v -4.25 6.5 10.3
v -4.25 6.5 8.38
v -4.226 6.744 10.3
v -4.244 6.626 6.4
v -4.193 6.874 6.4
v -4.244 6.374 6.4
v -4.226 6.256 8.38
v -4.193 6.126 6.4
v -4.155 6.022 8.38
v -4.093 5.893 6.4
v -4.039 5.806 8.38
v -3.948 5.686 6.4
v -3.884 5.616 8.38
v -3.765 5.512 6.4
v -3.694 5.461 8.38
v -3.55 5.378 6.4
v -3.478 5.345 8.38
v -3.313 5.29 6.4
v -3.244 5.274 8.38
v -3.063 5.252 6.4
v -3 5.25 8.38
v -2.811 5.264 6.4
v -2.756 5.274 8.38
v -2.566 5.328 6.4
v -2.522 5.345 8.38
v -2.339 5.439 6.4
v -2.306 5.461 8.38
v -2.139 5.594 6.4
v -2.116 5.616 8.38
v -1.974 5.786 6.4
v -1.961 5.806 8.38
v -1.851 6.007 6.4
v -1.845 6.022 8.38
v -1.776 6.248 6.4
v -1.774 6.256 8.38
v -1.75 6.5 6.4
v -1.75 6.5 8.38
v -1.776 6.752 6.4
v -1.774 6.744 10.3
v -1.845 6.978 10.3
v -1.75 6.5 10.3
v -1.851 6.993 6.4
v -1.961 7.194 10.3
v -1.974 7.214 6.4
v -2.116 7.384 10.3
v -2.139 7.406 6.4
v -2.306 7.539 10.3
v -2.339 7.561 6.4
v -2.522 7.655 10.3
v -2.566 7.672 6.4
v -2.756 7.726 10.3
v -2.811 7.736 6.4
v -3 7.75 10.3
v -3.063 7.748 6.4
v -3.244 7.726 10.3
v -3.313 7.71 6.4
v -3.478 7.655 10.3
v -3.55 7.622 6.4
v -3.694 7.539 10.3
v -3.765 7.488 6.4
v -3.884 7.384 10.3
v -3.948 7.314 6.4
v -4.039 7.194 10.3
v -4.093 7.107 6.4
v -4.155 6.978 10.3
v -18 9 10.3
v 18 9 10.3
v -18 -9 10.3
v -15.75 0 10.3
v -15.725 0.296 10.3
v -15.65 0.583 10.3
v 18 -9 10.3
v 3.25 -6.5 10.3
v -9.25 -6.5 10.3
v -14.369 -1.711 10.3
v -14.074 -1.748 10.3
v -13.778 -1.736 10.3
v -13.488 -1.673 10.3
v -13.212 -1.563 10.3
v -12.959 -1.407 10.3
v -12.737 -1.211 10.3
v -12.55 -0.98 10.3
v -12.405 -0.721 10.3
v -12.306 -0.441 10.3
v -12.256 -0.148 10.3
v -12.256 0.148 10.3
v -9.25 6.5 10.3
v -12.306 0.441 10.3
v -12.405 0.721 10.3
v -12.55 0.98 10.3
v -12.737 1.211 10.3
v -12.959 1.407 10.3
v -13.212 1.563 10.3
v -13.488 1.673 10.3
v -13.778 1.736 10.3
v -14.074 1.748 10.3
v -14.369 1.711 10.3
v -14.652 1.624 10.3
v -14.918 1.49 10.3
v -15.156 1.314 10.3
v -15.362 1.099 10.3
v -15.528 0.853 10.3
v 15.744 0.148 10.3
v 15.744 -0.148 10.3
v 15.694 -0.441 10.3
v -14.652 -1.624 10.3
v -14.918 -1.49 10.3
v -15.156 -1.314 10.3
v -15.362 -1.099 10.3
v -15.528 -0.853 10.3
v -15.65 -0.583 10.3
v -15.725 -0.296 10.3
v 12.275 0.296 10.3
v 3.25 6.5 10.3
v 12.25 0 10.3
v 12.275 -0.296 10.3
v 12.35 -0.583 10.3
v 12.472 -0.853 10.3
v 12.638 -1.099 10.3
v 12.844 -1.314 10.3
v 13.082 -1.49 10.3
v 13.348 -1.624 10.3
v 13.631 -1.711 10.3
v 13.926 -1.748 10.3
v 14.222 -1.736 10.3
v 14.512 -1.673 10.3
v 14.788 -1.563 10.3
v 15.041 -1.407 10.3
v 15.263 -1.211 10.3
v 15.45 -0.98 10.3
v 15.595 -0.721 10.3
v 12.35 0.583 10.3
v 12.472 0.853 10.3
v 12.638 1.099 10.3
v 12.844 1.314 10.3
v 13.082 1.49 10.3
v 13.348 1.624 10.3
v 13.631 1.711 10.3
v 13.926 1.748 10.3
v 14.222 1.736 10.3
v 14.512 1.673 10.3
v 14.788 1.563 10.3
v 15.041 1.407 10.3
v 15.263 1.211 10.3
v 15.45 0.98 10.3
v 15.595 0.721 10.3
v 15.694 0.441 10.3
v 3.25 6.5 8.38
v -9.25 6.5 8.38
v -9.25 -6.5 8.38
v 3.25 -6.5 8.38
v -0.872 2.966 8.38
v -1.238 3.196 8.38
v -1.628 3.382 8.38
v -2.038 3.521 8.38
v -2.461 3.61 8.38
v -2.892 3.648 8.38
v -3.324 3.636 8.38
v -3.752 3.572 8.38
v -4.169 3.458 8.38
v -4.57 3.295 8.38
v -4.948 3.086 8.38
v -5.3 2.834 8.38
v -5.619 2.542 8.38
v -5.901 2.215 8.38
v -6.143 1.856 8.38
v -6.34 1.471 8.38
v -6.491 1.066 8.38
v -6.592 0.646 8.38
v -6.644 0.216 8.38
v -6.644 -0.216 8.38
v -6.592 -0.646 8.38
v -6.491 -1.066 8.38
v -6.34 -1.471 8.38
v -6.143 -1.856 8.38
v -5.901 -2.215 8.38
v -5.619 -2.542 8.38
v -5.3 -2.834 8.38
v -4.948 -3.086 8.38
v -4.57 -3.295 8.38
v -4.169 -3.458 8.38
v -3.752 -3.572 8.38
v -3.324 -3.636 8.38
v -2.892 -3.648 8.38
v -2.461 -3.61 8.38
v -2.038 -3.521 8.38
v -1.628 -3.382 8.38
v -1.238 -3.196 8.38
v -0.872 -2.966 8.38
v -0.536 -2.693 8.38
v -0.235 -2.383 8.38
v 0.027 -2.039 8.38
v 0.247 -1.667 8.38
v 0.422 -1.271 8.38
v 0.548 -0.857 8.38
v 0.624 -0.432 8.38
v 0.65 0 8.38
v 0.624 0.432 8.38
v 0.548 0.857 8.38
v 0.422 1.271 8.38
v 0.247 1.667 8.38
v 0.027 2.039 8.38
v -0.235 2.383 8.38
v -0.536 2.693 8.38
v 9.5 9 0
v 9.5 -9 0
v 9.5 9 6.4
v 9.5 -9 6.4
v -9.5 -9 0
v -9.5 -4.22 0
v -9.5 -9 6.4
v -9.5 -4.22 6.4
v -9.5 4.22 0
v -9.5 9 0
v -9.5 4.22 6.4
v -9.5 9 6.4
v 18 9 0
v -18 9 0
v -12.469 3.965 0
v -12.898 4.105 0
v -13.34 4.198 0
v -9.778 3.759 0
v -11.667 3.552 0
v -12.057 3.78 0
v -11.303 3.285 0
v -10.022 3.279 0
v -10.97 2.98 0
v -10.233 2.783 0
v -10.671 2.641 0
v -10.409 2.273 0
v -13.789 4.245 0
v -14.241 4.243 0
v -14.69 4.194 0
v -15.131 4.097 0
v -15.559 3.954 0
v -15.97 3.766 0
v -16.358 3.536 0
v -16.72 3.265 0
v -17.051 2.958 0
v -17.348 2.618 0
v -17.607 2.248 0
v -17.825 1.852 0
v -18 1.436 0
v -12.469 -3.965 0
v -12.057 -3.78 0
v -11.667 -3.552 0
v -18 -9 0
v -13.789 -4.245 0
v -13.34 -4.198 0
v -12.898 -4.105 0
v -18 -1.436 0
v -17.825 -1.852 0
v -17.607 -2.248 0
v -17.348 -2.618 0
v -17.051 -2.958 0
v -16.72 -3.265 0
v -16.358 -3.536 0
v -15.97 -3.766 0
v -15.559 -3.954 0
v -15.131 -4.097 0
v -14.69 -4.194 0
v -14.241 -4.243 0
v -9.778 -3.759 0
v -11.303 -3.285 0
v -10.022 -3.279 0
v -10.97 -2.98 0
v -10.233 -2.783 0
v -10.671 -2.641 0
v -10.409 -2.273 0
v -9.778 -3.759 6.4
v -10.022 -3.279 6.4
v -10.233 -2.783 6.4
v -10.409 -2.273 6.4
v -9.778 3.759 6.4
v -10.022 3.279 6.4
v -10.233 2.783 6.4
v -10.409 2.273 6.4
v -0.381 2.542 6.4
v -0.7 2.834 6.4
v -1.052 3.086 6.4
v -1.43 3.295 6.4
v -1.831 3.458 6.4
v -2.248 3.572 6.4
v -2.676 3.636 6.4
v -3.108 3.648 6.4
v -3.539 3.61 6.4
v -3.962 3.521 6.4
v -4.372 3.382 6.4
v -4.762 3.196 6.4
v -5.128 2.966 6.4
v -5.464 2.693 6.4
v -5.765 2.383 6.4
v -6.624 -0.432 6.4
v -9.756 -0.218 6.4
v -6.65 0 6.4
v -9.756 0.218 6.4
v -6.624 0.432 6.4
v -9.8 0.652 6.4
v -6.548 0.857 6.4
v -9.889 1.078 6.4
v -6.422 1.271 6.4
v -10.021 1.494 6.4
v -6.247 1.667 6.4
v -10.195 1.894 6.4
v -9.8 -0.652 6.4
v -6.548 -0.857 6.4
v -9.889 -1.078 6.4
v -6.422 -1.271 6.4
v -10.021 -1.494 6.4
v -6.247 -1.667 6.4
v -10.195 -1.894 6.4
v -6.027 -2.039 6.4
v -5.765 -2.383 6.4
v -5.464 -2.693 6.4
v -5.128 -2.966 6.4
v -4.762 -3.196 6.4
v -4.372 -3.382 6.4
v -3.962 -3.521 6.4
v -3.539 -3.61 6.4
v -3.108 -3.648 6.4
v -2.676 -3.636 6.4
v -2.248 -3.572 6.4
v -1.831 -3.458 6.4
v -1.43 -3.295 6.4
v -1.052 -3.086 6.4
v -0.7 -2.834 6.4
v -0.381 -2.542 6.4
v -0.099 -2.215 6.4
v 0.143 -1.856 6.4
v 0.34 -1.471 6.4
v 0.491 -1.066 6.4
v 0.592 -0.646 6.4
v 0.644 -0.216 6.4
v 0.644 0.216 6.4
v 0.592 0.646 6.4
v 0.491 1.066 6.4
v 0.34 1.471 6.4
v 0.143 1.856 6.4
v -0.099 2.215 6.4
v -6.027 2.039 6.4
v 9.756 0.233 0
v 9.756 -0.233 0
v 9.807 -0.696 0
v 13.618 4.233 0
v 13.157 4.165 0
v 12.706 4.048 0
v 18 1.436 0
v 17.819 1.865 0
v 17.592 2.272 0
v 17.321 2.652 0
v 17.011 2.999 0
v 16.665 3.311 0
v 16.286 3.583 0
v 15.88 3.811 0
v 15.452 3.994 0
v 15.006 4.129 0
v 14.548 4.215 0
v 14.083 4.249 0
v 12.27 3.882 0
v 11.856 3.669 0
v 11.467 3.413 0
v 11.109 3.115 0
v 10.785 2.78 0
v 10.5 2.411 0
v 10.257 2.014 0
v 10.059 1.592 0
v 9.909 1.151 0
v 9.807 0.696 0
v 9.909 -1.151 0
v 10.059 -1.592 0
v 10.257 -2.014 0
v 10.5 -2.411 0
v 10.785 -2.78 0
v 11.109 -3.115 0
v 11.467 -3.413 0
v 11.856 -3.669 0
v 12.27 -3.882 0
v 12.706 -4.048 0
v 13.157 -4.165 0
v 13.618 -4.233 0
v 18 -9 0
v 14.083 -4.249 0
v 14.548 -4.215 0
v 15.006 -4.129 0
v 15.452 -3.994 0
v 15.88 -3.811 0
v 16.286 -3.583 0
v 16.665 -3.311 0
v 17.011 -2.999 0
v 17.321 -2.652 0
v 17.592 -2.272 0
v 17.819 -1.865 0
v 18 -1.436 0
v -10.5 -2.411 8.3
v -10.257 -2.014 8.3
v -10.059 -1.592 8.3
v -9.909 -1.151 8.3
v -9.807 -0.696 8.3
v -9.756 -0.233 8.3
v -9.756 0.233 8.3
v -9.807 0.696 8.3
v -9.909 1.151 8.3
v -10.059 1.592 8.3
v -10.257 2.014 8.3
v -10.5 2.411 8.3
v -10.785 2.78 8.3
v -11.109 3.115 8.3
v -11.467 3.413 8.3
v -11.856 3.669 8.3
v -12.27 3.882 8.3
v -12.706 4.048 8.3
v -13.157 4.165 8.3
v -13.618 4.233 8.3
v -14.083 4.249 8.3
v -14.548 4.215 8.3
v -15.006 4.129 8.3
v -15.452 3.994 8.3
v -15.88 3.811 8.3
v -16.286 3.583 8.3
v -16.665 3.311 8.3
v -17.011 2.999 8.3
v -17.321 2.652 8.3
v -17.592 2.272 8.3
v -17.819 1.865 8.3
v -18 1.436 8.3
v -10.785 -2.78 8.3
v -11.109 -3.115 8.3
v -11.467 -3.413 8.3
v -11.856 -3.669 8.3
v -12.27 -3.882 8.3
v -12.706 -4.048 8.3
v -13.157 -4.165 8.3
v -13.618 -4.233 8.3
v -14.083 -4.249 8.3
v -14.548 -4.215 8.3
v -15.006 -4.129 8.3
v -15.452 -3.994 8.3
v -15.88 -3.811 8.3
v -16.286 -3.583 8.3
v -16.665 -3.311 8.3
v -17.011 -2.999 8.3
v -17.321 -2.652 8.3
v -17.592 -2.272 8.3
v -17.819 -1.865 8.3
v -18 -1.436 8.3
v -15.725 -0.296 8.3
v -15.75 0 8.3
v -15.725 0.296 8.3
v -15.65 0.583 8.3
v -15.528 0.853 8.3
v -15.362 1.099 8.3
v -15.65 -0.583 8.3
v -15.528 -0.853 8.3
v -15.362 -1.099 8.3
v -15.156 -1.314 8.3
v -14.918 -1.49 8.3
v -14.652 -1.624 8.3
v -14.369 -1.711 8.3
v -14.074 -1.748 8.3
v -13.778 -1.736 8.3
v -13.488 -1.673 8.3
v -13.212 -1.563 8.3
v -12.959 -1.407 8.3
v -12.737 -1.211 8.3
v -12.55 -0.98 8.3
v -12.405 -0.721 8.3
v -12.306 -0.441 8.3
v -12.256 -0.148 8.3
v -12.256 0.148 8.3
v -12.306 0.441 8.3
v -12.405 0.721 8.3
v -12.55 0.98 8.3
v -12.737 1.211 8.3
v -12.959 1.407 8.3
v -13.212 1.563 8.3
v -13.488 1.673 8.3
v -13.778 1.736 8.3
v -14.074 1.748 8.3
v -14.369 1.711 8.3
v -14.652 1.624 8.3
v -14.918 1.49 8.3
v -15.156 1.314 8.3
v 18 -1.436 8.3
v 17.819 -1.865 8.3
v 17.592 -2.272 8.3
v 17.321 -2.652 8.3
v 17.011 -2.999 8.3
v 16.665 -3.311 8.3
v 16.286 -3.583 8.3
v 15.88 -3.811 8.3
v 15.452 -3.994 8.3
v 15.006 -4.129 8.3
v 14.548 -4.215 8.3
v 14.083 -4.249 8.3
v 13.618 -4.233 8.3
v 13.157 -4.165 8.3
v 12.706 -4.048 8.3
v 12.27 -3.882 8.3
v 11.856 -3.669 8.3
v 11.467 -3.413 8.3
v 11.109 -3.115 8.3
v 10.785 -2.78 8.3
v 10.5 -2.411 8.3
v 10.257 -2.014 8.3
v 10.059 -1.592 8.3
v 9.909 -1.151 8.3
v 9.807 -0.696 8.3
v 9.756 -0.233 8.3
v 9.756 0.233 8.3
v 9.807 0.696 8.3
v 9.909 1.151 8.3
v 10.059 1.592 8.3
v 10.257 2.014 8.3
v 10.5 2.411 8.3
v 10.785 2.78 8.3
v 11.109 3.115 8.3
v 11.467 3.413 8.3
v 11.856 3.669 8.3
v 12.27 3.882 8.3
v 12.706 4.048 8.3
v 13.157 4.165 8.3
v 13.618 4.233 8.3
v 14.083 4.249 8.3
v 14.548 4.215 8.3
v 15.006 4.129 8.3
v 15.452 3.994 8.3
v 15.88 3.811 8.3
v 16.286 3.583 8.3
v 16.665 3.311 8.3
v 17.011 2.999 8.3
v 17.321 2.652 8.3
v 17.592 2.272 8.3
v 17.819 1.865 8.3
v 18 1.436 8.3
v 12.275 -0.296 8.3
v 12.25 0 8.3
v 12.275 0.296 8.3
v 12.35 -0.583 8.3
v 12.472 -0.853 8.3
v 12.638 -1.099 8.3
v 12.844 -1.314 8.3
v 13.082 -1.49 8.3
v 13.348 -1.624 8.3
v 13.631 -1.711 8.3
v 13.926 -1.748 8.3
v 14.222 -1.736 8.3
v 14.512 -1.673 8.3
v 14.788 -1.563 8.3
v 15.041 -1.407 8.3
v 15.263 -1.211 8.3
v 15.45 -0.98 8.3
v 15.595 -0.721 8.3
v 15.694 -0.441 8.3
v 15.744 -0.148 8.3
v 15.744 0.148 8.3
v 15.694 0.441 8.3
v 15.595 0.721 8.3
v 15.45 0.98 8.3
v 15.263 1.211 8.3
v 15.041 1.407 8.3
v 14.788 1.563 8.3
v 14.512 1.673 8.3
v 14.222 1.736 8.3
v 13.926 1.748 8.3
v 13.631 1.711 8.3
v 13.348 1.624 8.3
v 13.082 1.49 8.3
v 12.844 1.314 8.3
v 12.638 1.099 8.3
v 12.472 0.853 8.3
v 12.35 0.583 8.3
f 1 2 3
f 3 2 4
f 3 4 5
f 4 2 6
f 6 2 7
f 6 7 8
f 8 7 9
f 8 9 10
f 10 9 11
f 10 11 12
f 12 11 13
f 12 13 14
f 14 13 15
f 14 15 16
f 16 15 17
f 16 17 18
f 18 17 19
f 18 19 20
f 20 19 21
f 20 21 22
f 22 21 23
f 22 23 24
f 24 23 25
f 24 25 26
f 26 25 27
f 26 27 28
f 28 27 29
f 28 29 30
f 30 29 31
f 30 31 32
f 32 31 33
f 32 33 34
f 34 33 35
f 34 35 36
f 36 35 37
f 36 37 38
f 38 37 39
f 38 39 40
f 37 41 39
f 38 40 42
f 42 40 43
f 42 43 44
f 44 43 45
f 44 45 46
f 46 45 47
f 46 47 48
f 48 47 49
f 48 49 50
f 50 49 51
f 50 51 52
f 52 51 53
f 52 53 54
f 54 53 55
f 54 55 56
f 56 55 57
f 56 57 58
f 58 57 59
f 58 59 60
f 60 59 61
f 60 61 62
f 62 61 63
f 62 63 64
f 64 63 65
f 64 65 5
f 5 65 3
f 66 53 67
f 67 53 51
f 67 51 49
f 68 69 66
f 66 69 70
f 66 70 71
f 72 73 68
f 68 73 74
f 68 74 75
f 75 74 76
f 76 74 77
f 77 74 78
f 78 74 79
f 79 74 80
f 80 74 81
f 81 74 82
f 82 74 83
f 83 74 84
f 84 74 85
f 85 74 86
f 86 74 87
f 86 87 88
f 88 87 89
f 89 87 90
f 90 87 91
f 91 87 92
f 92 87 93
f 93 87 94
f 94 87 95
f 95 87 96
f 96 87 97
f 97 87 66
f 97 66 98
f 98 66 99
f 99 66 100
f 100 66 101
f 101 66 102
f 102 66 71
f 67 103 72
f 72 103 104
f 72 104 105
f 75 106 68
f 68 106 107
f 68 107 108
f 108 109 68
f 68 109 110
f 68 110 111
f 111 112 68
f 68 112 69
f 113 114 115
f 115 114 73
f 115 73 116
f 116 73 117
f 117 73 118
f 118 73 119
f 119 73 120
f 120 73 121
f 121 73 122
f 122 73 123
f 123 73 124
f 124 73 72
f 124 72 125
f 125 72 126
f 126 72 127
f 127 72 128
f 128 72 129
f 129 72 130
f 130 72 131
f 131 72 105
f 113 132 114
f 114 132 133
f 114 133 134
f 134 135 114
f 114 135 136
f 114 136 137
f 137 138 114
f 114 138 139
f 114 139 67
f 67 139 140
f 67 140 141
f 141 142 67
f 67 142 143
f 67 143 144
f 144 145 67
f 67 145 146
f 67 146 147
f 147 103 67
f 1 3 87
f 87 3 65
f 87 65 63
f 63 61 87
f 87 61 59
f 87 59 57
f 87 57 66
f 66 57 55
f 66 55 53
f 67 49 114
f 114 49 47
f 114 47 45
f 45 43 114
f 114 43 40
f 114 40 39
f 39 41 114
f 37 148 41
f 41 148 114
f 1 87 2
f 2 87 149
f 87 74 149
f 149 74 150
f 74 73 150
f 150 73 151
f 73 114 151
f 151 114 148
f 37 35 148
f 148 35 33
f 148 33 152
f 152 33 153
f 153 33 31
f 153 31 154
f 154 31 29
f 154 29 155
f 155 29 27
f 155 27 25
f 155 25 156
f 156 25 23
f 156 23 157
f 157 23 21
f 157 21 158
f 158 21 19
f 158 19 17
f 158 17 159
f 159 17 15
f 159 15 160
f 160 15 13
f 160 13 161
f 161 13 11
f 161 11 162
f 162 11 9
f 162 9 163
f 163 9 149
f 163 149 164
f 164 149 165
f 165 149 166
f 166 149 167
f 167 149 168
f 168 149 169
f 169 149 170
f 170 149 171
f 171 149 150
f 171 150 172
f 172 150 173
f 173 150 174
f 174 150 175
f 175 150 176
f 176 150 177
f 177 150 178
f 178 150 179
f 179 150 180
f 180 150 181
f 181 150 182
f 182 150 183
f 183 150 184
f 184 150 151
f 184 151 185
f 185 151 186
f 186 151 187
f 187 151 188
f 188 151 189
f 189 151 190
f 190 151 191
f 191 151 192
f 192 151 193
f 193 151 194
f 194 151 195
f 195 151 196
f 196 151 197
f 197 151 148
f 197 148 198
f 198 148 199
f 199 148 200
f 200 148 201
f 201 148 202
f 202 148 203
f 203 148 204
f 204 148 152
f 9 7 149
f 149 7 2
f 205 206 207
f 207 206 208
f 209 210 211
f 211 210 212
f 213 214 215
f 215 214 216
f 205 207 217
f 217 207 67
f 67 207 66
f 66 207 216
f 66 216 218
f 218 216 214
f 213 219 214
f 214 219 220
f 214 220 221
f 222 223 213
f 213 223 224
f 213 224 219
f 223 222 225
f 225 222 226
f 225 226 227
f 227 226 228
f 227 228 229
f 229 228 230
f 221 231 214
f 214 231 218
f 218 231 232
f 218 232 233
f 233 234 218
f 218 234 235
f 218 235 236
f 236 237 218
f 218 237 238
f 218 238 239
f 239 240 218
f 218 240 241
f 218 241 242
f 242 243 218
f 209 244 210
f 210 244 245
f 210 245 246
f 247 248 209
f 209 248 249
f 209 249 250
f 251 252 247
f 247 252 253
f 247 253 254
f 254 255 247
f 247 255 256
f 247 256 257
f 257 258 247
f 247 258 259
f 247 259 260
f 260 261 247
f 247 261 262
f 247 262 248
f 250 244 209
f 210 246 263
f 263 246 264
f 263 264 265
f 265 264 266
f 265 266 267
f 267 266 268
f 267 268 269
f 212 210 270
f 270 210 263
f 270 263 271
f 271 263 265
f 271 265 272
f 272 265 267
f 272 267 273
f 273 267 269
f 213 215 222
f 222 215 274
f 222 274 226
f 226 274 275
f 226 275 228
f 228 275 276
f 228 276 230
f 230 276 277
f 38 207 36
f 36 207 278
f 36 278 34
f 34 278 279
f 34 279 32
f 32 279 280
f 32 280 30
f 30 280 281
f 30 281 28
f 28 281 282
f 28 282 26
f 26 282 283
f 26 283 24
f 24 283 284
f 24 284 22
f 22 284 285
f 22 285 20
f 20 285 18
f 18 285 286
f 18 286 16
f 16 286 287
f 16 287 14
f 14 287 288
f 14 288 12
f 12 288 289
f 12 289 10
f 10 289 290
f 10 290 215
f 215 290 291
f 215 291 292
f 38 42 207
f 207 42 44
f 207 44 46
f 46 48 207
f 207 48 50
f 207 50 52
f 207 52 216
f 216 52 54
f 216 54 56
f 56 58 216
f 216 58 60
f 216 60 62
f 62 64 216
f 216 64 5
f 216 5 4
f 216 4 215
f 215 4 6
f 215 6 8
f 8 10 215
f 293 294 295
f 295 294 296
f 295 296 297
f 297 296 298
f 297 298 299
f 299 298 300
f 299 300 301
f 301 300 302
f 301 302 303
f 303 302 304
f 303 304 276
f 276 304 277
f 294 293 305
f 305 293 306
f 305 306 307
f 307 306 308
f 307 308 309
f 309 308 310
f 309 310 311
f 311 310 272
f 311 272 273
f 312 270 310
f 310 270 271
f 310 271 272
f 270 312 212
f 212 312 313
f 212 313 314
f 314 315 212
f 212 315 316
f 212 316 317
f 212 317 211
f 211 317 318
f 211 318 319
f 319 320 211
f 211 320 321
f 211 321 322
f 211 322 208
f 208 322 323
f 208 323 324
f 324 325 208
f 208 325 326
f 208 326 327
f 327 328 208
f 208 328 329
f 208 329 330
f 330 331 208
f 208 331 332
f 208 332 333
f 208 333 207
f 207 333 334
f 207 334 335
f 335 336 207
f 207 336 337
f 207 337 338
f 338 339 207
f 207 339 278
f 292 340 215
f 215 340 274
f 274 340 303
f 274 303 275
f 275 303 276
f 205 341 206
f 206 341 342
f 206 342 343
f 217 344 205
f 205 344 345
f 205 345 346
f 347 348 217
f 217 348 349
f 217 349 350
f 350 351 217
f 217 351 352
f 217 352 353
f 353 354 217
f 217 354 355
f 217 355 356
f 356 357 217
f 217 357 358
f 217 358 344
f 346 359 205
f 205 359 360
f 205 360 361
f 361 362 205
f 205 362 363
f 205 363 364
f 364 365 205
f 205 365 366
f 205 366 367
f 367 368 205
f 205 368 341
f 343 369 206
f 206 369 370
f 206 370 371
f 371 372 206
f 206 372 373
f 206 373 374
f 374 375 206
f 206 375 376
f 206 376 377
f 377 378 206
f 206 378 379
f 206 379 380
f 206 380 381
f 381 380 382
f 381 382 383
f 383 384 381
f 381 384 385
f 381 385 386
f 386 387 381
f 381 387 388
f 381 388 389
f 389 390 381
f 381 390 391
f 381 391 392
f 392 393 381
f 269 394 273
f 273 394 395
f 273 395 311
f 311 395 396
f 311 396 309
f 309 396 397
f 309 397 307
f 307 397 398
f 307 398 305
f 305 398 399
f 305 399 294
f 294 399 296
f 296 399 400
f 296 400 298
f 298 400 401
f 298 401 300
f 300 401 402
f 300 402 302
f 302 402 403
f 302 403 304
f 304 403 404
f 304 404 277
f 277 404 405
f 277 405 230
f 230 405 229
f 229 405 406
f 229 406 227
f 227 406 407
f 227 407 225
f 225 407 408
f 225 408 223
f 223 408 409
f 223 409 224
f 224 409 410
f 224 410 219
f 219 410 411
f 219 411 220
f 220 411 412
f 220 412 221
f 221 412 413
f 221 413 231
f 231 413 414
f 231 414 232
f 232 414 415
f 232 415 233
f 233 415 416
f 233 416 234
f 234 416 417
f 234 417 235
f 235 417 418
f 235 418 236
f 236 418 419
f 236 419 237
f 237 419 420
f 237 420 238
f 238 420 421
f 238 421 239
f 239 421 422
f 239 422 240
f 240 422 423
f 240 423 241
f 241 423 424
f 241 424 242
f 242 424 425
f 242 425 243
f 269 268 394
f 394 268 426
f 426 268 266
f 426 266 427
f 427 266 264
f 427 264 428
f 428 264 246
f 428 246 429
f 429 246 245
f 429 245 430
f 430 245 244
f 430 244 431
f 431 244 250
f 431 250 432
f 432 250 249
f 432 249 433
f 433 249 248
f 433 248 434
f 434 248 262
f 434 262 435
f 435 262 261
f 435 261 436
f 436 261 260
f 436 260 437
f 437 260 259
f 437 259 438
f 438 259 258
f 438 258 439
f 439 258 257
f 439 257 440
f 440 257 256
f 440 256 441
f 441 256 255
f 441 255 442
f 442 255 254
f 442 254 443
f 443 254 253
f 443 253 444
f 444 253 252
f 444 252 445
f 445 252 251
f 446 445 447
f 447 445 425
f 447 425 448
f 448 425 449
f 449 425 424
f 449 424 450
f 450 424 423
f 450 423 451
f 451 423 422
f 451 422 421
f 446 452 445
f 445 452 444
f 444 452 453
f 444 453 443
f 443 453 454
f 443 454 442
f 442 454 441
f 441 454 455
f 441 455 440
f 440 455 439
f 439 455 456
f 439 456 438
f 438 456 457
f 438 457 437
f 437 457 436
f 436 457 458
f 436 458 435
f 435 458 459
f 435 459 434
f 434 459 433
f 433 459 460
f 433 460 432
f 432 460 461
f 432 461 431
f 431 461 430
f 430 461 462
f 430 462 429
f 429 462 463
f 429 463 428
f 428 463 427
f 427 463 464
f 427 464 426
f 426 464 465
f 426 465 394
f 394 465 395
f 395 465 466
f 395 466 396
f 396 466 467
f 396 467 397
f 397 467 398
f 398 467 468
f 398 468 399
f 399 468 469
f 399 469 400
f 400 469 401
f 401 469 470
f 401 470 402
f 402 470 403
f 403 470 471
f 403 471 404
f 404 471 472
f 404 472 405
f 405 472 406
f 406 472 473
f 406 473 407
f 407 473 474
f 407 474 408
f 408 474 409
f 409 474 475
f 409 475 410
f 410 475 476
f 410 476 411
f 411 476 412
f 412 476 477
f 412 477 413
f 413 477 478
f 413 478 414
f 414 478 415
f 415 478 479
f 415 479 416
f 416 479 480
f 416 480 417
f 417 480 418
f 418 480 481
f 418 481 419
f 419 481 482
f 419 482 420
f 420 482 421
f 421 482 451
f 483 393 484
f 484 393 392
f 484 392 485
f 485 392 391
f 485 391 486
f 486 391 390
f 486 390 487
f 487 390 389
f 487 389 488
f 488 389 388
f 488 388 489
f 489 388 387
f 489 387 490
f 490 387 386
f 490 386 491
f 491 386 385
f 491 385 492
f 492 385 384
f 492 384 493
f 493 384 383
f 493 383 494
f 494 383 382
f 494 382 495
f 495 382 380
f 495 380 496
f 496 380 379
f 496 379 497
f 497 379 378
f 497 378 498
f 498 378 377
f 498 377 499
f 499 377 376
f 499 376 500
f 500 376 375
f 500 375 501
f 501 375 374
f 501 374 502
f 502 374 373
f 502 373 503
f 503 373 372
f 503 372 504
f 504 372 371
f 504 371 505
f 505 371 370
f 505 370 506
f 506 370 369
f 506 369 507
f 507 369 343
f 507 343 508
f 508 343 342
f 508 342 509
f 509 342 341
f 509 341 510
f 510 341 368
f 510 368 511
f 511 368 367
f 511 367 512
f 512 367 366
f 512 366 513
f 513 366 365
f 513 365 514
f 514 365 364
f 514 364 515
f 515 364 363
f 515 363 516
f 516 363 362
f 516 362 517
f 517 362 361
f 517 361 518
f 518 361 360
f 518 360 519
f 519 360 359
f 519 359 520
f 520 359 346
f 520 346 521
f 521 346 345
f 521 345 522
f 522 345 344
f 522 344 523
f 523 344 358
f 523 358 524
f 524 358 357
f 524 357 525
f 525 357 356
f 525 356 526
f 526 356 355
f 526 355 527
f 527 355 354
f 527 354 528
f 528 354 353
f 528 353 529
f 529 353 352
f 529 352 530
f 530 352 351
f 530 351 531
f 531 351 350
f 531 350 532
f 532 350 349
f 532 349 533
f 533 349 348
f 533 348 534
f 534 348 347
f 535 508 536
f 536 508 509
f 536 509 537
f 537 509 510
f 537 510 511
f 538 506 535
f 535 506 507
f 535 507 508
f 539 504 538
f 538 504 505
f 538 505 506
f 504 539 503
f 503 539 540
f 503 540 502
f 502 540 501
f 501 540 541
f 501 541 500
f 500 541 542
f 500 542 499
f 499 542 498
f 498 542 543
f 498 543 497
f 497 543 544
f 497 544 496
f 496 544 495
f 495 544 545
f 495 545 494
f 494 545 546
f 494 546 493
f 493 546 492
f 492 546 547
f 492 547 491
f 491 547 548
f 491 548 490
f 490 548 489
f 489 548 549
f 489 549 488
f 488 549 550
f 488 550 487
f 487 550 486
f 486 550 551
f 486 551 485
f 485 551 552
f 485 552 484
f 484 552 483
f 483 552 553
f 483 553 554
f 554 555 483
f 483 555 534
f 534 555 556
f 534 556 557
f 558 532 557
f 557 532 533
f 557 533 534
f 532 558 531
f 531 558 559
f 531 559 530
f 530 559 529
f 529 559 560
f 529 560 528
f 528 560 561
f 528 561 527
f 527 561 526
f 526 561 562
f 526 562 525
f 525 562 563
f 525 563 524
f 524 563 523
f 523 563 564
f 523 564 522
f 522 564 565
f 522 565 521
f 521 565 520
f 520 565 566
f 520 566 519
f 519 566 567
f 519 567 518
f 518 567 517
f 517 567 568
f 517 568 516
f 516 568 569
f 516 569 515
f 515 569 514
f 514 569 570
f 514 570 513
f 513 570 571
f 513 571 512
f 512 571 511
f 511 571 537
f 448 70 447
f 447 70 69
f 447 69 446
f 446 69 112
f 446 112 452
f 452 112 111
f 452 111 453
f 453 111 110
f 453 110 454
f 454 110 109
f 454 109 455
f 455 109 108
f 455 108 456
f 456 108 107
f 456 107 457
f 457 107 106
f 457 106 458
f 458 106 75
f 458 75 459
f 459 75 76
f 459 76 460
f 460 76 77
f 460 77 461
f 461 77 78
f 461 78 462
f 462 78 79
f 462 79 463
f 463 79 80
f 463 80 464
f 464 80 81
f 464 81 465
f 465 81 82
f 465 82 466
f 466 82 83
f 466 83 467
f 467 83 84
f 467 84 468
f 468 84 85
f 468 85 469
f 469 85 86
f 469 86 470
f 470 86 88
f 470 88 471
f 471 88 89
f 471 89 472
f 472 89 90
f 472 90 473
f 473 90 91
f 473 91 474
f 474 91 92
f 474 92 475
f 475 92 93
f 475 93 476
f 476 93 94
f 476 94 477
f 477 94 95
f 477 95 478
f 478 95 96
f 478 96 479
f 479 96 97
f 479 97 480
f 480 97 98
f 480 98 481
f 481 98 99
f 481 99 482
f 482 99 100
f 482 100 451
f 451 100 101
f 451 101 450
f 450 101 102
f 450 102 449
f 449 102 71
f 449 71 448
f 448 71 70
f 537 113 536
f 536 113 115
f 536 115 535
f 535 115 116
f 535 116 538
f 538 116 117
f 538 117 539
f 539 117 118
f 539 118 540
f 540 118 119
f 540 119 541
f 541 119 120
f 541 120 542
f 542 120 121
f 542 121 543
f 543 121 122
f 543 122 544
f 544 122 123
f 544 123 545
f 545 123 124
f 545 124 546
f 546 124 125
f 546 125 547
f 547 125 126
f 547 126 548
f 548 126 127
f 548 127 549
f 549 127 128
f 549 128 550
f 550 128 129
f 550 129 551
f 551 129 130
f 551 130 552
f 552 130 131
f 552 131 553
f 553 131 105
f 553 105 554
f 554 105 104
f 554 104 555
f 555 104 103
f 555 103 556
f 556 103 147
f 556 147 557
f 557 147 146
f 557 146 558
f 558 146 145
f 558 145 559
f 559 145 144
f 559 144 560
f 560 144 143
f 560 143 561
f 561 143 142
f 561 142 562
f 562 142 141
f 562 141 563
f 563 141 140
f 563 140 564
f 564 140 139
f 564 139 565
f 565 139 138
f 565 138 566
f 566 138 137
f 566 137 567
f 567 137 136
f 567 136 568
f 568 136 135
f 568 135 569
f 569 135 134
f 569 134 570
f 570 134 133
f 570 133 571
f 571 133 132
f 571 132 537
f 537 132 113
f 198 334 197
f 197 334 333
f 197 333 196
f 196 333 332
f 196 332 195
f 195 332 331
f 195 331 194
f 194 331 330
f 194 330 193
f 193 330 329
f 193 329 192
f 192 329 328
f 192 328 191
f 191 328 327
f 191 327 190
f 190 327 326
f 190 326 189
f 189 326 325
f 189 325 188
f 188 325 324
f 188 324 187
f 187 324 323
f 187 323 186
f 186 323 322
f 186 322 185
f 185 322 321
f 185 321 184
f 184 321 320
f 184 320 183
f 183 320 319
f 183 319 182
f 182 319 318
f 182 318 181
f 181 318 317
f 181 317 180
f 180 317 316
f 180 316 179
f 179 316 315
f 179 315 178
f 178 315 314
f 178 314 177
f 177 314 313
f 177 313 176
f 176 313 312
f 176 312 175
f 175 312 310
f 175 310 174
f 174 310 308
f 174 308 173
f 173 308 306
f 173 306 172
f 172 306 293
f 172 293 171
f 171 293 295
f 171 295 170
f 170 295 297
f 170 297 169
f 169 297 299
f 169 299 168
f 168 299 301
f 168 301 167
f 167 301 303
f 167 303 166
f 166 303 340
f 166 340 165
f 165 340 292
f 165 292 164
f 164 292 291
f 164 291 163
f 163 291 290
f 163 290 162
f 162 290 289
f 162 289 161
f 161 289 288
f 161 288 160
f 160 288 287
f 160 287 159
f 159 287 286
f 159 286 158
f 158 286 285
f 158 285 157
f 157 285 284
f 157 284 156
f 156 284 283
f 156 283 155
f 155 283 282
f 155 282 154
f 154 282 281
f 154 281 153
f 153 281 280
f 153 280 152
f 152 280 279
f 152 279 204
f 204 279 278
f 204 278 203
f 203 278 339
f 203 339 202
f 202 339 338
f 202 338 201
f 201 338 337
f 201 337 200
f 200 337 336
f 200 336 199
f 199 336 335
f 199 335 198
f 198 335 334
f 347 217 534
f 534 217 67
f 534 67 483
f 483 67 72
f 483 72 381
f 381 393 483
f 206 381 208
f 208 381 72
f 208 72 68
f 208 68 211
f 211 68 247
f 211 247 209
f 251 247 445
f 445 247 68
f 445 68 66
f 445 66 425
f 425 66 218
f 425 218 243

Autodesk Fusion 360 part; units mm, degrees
sketch "Skizze1" plane through (0, 0, 0) normal (0, 0, 1) x (1, 0, 0)
  line L0 (18, -9) -> (-18, -9)
  line L1 (-18, -9) -> (-18, 9)
  line L2 (-18, 9) -> (18, 9)
  line L3 (18, 9) -> (18, -9)
  line L4 (18, -9) -> (-18, 9) construction
  line L5 (-18, -9) -> (18, 9) construction
  line L6 (-14, 14.295) -> (-14, -12) construction
  line L7 (14, 15.3346) -> (14, -11.7486) construction
  line L8 (-3, 14) -> (-3, -10) construction
  line L9 (-21.8783, 0) -> (29.3882, 0) construction
  circle A0 centre (-3, 0) radius 3.65
  circle A1 centre (-14, 0) radius 1.75
  circle A2 centre (14, 0) radius 1.75
  line L10 (-9.5, 9) -> (-9.5, -9)
  line L11 (9.5, 9) -> (9.5, -9)
  circle A3 centre (-3, 0) radius 7.75
  line L12 (3, -6.25) -> (-9, -6.25)
  line L13 (-9, -6.25) -> (-9, 6.25)
  line L14 (-9, 6.25) -> (3, 6.25)
  line L15 (3, 6.25) -> (3, -6.25)
  line L16 (3, -6.25) -> (-9, 6.25) construction
  line L17 (-9, -6.25) -> (3, 6.25) construction
  circle A4 centre (-14, 0) radius 4.25
  circle A5 centre (14, 0) radius 4.25
  point P0 (-6.65, 0)
  point P1 (-3, 0)
  dimension "d1" = 36
  dimension "d2" = 18
  dimension "d3" = 4
  dimension "d4" = 11
  dimension "d5" = 17
  dimension "d6" = 7.3
  dimension "d7" = 3.5
  dimension "d8" = 3.5
  dimension "d10" = 4.5
  dimension "d11" = 2.85
  dimension "d12" = 15.5
  dimension "d13" = 4.5
  dimension "d14" = 12
  dimension "d15" = 12.5
  dimension "d16" = 8.5
  dimension "d17" = 8.5
extrude "Extrusion1" add sketch "Skizze1" along normal blind 10.3 contours L0 L2 L3 L11 A5 | L0 L2 L10 L11 A3 L12 L13 L14 L15 | L3 A5 | L0 L1 L10 A3 A4 | L10 A3 A4 | L10 A3 L13 | L1 L2 L10 A3 A4 | L1 A3 A4 | A3 A4 | A3 L12 L13 L14 L15 | A3 L12 L13 | A3 L13 L14 | A3 L12 | A3 L14 | A3 L12 L15 | A3 L14 L15 | A3 L15 picked at (17.25, 0)
extrude "Extrusion2" cut sketch "Skizze1" along normal blind 8.3 contours L3 A5 | L1 A3 A4 | A3 A4 picked at (17.25, 0)
extrude "Extrusion3" cut sketch "Skizze1" along normal blind 6.4 contours L10 A3 A4 | L10 A3 L13 | A3 L12 L13 L14 L15 | A3 L12 | A3 L14 | A3 L15
extrude "Extrusion4" cut sketch "Skizze1" along normal blind 6.4 contours L0 L2 L10 L11 A3 L12 L13 L14 L15 | A3 L12 L13 | A3 L13 L14 | A3 L12 L15 | A3 L14 L15
sketch "Skizze2" plane through (0, 0, 10.3) normal (0, 0, 1) x (-1, 0, 0)
  circle A0 centre (-14, 0) radius 1.75
  circle A1 centre (14, 0) radius 1.75
  circle A2 centre (3, 0) radius 3.65
  line L0 (-18, -9) -> (18, -9)
  line L1 (18, -9) -> (18, 9)
  line L2 (18, 9) -> (-18, 9)
  line L3 (-18, 9) -> (-18, -9)
  line L4 (19.6534, 0) -> (-19.2741, 0) construction
  line L5 (3, -11.2204) -> (3, 11) construction
  line L6 (-3.25, 6.5) -> (9.25, 6.5)
  line L7 (9.25, 6.5) -> (9.25, -6.5)
  line L8 (9.25, -6.5) -> (-3.25, -6.5)
  line L9 (-3.25, -6.5) -> (-3.25, 6.5)
  line L10 (-3.25, 6.5) -> (9.25, -6.5) construction
  line L11 (9.25, 6.5) -> (-3.25, -6.5) construction
  circle A3 centre (3, -6.5) radius 1.25
  point P0 (3, 0)
  point P1 (3, 0)
  point P2 (3, -6.5)
  dimension "d26" = 13
  dimension "d27" = 12.5
  dimension "d30" = 2.5
extrude "Extrusion5" cut sketch "Skizze2" against normal blind 1.92 contours L6 L7 L8 L9 A3 | L8 A3 picked at (3.3396, -6.2032)
extrude "Extrusion6" cut sketch "Skizze2" against normal blind 9 contours L8 A3 | L8 A3
